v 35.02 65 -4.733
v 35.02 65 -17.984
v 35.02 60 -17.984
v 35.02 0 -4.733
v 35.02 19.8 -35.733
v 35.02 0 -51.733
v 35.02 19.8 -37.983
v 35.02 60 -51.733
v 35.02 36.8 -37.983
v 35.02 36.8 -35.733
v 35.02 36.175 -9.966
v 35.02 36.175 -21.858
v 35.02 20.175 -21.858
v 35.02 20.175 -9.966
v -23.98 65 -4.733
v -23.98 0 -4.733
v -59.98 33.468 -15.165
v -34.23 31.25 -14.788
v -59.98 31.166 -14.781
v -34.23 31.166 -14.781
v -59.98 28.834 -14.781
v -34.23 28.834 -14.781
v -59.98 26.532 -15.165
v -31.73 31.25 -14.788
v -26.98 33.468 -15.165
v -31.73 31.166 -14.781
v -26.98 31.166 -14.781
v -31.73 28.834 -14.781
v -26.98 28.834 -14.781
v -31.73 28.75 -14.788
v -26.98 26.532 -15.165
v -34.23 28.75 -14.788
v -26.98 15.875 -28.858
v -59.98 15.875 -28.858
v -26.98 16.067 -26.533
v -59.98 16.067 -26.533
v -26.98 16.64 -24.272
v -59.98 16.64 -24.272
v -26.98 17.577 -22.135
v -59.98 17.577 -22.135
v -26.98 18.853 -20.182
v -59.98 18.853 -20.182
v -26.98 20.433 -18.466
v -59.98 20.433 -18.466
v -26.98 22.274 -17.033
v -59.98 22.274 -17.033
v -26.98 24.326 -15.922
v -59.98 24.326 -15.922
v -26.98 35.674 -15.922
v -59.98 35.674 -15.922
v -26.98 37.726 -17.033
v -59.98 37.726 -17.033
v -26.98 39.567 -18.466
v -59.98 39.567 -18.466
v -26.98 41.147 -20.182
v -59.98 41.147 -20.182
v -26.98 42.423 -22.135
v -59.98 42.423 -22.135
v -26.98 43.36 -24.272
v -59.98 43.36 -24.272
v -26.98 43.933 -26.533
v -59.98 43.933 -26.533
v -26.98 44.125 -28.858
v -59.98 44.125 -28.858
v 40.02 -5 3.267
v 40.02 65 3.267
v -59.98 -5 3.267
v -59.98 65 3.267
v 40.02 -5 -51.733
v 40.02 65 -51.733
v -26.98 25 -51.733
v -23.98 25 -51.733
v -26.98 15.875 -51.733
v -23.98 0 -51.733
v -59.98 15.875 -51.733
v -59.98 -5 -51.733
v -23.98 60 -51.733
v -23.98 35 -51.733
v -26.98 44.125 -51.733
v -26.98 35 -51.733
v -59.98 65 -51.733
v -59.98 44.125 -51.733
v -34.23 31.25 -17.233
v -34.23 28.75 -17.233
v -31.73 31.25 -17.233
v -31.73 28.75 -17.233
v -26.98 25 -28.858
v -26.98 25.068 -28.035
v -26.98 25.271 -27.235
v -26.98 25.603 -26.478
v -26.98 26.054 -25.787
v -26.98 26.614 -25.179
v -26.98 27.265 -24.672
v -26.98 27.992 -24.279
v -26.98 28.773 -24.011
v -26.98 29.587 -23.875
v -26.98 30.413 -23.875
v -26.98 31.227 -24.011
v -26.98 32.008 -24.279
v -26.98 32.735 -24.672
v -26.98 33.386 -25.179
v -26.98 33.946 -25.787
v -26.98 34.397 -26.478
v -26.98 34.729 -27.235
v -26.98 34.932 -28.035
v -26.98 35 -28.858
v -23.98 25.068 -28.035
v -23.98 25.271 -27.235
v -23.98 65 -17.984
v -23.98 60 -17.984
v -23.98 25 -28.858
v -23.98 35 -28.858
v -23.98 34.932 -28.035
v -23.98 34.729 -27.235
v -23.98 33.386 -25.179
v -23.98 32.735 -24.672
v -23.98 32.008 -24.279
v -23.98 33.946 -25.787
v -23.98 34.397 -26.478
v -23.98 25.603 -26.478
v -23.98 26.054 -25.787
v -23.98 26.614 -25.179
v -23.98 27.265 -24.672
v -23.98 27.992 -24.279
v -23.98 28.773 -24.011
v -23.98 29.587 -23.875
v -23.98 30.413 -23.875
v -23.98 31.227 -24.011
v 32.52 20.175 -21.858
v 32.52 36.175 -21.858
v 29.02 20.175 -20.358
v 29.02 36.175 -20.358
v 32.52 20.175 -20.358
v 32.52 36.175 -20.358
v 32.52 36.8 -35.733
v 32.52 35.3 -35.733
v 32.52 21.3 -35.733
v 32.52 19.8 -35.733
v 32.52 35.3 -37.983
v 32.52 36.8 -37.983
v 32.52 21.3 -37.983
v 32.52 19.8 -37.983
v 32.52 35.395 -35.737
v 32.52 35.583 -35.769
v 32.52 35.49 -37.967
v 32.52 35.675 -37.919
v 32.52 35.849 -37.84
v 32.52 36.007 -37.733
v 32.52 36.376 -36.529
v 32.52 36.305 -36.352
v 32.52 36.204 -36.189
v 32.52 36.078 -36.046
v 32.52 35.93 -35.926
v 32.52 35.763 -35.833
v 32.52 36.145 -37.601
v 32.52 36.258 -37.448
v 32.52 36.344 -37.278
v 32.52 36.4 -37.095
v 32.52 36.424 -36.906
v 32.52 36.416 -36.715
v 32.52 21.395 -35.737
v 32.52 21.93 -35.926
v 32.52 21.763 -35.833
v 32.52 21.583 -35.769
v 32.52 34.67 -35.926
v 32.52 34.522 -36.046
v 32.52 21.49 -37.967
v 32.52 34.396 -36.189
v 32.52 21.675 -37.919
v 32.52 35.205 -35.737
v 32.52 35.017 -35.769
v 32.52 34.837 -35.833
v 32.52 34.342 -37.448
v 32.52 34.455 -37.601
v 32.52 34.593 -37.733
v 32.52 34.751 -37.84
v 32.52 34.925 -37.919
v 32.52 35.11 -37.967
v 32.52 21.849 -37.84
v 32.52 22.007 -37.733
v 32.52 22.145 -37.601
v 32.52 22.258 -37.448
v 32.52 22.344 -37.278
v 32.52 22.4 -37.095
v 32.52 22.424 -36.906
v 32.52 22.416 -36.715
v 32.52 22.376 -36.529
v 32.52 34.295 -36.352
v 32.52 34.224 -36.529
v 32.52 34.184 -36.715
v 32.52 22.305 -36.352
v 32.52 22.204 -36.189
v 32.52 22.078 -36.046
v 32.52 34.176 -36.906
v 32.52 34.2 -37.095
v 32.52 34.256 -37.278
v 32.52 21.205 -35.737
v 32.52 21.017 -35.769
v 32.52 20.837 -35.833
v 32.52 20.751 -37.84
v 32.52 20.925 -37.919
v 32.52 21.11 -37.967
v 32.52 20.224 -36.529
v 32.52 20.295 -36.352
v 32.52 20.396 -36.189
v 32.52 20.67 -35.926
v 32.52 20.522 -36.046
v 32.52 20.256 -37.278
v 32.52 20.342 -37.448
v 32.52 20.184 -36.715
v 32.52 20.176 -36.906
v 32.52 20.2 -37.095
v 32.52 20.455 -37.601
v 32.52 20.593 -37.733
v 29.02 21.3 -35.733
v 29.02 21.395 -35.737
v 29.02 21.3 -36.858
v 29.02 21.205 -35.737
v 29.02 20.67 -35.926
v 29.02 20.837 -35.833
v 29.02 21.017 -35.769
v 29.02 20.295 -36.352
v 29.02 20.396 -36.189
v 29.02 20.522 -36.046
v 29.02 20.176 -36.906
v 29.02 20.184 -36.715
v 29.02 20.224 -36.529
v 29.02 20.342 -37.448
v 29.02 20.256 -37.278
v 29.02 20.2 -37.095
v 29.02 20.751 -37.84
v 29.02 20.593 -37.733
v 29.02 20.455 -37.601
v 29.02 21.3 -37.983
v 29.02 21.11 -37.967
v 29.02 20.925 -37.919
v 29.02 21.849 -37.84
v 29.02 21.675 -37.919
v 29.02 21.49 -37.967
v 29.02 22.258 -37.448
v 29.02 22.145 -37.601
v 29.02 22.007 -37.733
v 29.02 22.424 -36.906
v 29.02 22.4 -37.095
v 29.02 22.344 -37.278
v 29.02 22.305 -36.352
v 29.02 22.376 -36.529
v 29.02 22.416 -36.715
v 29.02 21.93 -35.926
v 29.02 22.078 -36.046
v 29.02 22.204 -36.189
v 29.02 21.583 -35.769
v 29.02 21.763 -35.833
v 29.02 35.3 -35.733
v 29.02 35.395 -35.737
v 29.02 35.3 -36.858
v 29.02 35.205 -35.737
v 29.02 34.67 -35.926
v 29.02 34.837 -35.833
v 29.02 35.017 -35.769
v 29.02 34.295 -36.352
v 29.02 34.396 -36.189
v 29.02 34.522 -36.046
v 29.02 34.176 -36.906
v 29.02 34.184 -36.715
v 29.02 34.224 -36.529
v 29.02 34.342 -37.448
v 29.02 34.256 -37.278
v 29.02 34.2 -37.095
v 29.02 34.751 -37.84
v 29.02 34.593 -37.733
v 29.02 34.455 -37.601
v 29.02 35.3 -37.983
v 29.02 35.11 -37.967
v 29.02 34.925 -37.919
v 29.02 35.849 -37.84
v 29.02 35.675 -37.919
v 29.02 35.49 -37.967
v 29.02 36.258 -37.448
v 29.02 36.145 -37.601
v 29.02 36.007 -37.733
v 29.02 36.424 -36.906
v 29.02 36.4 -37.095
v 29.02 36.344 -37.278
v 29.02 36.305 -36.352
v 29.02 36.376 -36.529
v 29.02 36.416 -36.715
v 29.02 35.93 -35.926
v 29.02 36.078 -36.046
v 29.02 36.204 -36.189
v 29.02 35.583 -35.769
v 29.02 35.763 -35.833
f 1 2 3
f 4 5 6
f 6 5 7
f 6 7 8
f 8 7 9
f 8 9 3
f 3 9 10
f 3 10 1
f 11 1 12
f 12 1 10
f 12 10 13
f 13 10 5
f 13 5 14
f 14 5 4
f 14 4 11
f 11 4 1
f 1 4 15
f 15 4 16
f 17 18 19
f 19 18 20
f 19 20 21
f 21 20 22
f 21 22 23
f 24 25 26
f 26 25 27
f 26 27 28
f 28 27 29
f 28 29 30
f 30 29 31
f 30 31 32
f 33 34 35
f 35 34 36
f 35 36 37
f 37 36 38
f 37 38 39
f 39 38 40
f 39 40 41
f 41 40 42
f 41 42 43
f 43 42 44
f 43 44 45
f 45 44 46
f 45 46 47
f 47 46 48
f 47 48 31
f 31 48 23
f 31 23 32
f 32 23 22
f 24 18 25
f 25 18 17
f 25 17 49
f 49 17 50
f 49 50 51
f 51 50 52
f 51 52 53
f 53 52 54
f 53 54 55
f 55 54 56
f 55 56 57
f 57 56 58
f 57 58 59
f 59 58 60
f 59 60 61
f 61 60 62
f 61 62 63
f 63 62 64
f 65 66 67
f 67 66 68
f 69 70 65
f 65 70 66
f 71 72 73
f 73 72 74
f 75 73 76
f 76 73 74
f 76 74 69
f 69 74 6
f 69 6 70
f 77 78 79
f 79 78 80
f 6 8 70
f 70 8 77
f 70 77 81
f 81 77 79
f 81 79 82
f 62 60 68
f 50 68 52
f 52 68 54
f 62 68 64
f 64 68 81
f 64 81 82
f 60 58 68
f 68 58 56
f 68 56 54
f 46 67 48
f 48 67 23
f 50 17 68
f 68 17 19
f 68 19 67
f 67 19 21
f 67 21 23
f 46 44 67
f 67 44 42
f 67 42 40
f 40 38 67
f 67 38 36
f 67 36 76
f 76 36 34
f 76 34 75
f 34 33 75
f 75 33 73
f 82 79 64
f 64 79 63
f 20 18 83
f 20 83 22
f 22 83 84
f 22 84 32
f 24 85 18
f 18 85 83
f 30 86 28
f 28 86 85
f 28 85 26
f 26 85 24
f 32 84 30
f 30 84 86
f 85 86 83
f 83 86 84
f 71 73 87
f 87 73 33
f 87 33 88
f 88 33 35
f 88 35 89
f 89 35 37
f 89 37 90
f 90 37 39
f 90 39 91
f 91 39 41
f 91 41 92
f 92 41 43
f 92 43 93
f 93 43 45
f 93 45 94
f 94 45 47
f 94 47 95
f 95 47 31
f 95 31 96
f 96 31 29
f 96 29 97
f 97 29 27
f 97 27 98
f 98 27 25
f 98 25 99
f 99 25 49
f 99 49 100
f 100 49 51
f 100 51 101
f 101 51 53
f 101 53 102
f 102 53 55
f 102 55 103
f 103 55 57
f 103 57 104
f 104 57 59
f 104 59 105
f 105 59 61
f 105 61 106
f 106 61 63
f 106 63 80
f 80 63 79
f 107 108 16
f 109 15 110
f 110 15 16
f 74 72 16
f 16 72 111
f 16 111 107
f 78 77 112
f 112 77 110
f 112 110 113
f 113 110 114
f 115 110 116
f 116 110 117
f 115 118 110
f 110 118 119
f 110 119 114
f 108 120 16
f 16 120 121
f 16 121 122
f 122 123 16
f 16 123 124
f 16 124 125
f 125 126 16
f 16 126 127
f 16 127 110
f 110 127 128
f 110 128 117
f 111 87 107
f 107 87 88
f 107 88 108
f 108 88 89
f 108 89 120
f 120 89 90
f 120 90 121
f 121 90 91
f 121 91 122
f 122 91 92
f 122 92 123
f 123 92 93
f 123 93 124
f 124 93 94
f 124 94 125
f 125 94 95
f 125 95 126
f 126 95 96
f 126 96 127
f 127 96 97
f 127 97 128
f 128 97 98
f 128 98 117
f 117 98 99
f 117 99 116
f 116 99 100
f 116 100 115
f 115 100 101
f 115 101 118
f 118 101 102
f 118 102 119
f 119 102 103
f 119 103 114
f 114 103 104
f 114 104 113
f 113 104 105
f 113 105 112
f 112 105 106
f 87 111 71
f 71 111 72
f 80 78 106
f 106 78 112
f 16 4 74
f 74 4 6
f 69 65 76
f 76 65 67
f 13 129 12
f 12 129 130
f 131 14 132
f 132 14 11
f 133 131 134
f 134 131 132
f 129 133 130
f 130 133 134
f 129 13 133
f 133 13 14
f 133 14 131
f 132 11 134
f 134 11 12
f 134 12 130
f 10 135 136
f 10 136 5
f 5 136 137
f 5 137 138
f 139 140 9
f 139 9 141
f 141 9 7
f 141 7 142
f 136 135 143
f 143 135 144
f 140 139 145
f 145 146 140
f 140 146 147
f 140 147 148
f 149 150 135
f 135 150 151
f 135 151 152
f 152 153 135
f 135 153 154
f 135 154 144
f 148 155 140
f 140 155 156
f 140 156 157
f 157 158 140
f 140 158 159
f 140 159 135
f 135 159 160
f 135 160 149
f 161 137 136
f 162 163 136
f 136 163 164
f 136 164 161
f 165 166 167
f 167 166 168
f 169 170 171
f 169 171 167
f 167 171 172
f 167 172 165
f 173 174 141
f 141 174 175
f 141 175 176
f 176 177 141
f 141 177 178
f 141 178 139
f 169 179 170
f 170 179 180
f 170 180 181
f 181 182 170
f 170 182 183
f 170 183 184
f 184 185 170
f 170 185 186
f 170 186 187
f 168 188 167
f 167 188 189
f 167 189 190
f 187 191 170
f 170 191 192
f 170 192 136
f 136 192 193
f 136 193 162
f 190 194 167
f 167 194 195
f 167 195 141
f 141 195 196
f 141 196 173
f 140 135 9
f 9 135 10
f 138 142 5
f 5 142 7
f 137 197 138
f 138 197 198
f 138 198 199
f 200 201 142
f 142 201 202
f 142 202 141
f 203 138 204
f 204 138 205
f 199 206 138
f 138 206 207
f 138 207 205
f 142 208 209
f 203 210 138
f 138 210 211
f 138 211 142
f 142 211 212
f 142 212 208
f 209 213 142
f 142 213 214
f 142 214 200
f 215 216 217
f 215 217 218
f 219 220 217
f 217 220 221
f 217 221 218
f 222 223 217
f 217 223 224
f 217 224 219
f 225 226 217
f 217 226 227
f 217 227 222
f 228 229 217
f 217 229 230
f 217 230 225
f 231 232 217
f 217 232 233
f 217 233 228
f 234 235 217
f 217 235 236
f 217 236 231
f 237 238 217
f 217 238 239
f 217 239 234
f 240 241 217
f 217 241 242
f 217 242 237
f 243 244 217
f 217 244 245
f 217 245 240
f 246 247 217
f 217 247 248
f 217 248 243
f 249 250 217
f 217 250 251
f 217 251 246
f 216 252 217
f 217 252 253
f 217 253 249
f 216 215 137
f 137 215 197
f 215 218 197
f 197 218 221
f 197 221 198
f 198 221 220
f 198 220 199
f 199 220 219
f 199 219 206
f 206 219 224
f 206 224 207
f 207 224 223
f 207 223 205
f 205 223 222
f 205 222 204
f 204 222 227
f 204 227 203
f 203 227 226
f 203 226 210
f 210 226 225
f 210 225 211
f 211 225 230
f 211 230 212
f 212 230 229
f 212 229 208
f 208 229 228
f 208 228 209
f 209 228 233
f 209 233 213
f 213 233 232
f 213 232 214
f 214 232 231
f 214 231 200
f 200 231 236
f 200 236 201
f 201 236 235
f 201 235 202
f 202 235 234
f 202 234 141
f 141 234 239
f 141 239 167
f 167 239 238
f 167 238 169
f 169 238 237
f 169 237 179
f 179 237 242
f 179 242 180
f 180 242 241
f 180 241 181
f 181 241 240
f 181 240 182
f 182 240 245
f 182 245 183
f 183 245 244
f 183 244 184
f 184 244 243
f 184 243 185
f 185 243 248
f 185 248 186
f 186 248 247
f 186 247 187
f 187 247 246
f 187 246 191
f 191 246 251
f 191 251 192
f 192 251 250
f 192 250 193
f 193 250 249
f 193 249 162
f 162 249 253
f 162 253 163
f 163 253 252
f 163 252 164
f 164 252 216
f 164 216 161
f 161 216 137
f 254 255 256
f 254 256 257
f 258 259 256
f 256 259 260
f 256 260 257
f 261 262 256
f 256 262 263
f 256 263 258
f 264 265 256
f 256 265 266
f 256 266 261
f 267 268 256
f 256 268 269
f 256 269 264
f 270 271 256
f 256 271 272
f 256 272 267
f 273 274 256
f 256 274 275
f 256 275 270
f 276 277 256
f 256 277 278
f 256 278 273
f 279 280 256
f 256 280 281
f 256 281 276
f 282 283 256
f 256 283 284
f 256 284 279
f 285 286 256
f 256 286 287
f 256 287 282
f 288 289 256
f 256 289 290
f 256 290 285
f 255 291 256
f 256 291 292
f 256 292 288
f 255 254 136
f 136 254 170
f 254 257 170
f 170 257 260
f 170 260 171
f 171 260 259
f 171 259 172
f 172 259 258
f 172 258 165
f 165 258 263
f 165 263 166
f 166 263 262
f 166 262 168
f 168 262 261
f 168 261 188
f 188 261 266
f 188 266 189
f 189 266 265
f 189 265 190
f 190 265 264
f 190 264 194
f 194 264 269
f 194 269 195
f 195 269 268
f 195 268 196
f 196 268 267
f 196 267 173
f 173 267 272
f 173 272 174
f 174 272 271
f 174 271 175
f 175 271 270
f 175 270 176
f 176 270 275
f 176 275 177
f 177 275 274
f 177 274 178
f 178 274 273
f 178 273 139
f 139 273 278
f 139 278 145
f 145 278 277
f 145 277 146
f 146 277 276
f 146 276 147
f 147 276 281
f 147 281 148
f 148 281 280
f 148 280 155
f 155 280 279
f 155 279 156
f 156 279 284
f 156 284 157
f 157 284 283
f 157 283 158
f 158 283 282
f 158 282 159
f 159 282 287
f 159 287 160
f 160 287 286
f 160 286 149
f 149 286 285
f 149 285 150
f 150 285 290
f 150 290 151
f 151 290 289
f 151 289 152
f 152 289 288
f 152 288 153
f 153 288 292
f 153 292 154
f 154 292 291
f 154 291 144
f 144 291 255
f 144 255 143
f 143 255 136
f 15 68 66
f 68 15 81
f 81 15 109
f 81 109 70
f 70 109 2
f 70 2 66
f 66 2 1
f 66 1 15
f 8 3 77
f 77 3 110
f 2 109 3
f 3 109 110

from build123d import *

# Parameters (mm, degrees)
BOSS_EXTRUDE1_DEPTH  = 60
CUT_EXTRUDE1_DEPTH   = 40
SKETCH11_W           = 2.5
SKETCH11_H           = 2.5
BOSS_EXTRUDE2_DEPTH  = 2.5
SKETCH14_W           = 3
SKETCH14_H           = 60
BOSS_EXTRUDE5_DEPTH  = 47
SKETCH12_R           = 1.125
BOSS_EXTRUDE3_DEPTH  = 6
CUT_EXTRUDE2_DEPTH   = 10
SKETCH16_W           = 100
SKETCH16_H           = 55
BOSS_EXTRUDE6_DEPTH  = 5
BOSS_EXTRUDE8_START  = -2
BOSS_EXTRUDE8_DEPTH  = 16
SKETCH19_W           = 2.25
SKETCH19_H           = 17
BOSS_EXTRUDE9_DEPTH  = 2.5
SKETCH20_W           = 100
SKETCH20_H           = 55
SKETCH20_W_2         = 59
SKETCH20_H_2         = 13.250841504
BOSS_EXTRUDE10_DEPTH = 5


with BuildPart() as part:
    # Sketch1 → Boss-Extrude1 (new body)
    with BuildSketch(Plane(origin=(0, 0, 0), x_dir=(1, 0, 0), z_dir=(0, 1, 0))):
        Polygon((40.01980198, -3.267326733), (40.01980198, 51.732673267), (35.01980198, 51.732673267), (35.01980198, 4.732673267), (-26.98019802, 4.732673267), (-26.98019802, 51.732673267), (-59.98019802, 51.732673267), (-59.98019802, -3.267326733), align=None)
    extrude(amount=BOSS_EXTRUDE1_DEPTH)

    # Sketch3 → Cut-Extrude1 (cut)
    with BuildSketch(Plane.ZY.offset(59.98019802)):
        with BuildLine():
            Line((-28.858094019, 44.125420752), (-51.732673267, 44.125420752))
            Line((-51.732673267, 44.125420752), (-51.732673267, 15.874579248))
            Line((-51.732673267, 15.874579248), (-28.858094019, 15.874579248))
            ThreePointArc((-28.858094019, 15.874579248), (-14.732673267, 30), (-28.858094019, 44.125420752))
        make_face()
    extrude(amount=-CUT_EXTRUDE1_DEPTH, mode=Mode.SUBTRACT)

    # Sketch11 → Boss-Extrude2 (add)
    with BuildSketch(Plane(origin=(0, 0, -14.732673267), x_dir=(-1, 0, 0), z_dir=(0, 0, -1))):
        with Locations((32.98019802, 30)):
            Rectangle(SKETCH11_W, SKETCH11_H)
    extrude(amount=BOSS_EXTRUDE2_DEPTH)

    # Sketch14 → Boss-Extrude5 (add)
    with BuildSketch(Plane(origin=(0, 0, -4.732673267), x_dir=(-1, 0, 0), z_dir=(0, 0, -1))):
        with Locations((25.48019802, 30)):
            Rectangle(SKETCH14_W, SKETCH14_H)
    extrude(amount=BOSS_EXTRUDE5_DEPTH)

    # Sketch12 → Boss-Extrude3 (add)
    with BuildSketch(Plane.ZY.offset(-35.01980198)):
        with Locations(Location((-36.858094019, 35.3, 0), (0, 0, 180))):
            Circle(SKETCH12_R)
        with Locations(Location((-36.858094019, 21.3, 0), (0, 0, 180))):
            Circle(SKETCH12_R)
    extrude(amount=BOSS_EXTRUDE3_DEPTH)

    # Sketch15 → Cut-Extrude2 (cut)
    with BuildSketch(Plane.ZY.offset(26.98019802)):
        with BuildLine():
            Line((-28.858094019, 35), (-51.732673267, 35))
            Line((-51.732673267, 35), (-51.732673267, 25))
            Line((-51.732673267, 25), (-28.858094019, 25))
            ThreePointArc((-28.858094019, 25), (-23.858094019, 30), (-28.858094019, 35))
        make_face()
    extrude(amount=-CUT_EXTRUDE2_DEPTH, mode=Mode.SUBTRACT)

    # Sketch16 → Boss-Extrude6 (add)
    with BuildSketch(Plane.XZ):
        with Locations((-9.98019802, -24.232673267)):
            Rectangle(SKETCH16_W, SKETCH16_H)
    extrude(amount=BOSS_EXTRUDE6_DEPTH)

    # Sketch18 → Boss-Extrude8 (add)
    with BuildSketch(Plane(origin=(0, 34.175, 0), x_dir=(-1, 0, 0), z_dir=(0, -1, 0)).offset(BOSS_EXTRUDE8_START)):
        Polygon((-35.01980198, 21.858094019), (-35.01980198, 9.965789174), (-29.01980198, 20.358094019), (-32.51980198, 20.358094019), (-32.51980198, 21.858094019), align=None)
    extrude(amount=BOSS_EXTRUDE8_DEPTH)

    # Sketch19 → Boss-Extrude9 (add)
    with BuildSketch(Plane.ZY.offset(-35.01980198)):
        with Locations((-36.858094019, 28.3)):
            Rectangle(SKETCH19_W, SKETCH19_H)
    extrude(amount=BOSS_EXTRUDE9_DEPTH)

    # Sketch20 → Boss-Extrude10 (add)
    with BuildSketch(Plane(origin=(0, 60, 0), x_dir=(1, 0, 0), z_dir=(0, 1, 0))):
        with Locations((-9.98019802, 24.232673267)):
            Rectangle(SKETCH20_W, SKETCH20_H)
        with Locations((5.51980198, 11.358094019)):
            Rectangle(SKETCH20_W_2, SKETCH20_H_2, mode=Mode.SUBTRACT)
    extrude(amount=BOSS_EXTRUDE10_DEPTH)


solid = part.part
